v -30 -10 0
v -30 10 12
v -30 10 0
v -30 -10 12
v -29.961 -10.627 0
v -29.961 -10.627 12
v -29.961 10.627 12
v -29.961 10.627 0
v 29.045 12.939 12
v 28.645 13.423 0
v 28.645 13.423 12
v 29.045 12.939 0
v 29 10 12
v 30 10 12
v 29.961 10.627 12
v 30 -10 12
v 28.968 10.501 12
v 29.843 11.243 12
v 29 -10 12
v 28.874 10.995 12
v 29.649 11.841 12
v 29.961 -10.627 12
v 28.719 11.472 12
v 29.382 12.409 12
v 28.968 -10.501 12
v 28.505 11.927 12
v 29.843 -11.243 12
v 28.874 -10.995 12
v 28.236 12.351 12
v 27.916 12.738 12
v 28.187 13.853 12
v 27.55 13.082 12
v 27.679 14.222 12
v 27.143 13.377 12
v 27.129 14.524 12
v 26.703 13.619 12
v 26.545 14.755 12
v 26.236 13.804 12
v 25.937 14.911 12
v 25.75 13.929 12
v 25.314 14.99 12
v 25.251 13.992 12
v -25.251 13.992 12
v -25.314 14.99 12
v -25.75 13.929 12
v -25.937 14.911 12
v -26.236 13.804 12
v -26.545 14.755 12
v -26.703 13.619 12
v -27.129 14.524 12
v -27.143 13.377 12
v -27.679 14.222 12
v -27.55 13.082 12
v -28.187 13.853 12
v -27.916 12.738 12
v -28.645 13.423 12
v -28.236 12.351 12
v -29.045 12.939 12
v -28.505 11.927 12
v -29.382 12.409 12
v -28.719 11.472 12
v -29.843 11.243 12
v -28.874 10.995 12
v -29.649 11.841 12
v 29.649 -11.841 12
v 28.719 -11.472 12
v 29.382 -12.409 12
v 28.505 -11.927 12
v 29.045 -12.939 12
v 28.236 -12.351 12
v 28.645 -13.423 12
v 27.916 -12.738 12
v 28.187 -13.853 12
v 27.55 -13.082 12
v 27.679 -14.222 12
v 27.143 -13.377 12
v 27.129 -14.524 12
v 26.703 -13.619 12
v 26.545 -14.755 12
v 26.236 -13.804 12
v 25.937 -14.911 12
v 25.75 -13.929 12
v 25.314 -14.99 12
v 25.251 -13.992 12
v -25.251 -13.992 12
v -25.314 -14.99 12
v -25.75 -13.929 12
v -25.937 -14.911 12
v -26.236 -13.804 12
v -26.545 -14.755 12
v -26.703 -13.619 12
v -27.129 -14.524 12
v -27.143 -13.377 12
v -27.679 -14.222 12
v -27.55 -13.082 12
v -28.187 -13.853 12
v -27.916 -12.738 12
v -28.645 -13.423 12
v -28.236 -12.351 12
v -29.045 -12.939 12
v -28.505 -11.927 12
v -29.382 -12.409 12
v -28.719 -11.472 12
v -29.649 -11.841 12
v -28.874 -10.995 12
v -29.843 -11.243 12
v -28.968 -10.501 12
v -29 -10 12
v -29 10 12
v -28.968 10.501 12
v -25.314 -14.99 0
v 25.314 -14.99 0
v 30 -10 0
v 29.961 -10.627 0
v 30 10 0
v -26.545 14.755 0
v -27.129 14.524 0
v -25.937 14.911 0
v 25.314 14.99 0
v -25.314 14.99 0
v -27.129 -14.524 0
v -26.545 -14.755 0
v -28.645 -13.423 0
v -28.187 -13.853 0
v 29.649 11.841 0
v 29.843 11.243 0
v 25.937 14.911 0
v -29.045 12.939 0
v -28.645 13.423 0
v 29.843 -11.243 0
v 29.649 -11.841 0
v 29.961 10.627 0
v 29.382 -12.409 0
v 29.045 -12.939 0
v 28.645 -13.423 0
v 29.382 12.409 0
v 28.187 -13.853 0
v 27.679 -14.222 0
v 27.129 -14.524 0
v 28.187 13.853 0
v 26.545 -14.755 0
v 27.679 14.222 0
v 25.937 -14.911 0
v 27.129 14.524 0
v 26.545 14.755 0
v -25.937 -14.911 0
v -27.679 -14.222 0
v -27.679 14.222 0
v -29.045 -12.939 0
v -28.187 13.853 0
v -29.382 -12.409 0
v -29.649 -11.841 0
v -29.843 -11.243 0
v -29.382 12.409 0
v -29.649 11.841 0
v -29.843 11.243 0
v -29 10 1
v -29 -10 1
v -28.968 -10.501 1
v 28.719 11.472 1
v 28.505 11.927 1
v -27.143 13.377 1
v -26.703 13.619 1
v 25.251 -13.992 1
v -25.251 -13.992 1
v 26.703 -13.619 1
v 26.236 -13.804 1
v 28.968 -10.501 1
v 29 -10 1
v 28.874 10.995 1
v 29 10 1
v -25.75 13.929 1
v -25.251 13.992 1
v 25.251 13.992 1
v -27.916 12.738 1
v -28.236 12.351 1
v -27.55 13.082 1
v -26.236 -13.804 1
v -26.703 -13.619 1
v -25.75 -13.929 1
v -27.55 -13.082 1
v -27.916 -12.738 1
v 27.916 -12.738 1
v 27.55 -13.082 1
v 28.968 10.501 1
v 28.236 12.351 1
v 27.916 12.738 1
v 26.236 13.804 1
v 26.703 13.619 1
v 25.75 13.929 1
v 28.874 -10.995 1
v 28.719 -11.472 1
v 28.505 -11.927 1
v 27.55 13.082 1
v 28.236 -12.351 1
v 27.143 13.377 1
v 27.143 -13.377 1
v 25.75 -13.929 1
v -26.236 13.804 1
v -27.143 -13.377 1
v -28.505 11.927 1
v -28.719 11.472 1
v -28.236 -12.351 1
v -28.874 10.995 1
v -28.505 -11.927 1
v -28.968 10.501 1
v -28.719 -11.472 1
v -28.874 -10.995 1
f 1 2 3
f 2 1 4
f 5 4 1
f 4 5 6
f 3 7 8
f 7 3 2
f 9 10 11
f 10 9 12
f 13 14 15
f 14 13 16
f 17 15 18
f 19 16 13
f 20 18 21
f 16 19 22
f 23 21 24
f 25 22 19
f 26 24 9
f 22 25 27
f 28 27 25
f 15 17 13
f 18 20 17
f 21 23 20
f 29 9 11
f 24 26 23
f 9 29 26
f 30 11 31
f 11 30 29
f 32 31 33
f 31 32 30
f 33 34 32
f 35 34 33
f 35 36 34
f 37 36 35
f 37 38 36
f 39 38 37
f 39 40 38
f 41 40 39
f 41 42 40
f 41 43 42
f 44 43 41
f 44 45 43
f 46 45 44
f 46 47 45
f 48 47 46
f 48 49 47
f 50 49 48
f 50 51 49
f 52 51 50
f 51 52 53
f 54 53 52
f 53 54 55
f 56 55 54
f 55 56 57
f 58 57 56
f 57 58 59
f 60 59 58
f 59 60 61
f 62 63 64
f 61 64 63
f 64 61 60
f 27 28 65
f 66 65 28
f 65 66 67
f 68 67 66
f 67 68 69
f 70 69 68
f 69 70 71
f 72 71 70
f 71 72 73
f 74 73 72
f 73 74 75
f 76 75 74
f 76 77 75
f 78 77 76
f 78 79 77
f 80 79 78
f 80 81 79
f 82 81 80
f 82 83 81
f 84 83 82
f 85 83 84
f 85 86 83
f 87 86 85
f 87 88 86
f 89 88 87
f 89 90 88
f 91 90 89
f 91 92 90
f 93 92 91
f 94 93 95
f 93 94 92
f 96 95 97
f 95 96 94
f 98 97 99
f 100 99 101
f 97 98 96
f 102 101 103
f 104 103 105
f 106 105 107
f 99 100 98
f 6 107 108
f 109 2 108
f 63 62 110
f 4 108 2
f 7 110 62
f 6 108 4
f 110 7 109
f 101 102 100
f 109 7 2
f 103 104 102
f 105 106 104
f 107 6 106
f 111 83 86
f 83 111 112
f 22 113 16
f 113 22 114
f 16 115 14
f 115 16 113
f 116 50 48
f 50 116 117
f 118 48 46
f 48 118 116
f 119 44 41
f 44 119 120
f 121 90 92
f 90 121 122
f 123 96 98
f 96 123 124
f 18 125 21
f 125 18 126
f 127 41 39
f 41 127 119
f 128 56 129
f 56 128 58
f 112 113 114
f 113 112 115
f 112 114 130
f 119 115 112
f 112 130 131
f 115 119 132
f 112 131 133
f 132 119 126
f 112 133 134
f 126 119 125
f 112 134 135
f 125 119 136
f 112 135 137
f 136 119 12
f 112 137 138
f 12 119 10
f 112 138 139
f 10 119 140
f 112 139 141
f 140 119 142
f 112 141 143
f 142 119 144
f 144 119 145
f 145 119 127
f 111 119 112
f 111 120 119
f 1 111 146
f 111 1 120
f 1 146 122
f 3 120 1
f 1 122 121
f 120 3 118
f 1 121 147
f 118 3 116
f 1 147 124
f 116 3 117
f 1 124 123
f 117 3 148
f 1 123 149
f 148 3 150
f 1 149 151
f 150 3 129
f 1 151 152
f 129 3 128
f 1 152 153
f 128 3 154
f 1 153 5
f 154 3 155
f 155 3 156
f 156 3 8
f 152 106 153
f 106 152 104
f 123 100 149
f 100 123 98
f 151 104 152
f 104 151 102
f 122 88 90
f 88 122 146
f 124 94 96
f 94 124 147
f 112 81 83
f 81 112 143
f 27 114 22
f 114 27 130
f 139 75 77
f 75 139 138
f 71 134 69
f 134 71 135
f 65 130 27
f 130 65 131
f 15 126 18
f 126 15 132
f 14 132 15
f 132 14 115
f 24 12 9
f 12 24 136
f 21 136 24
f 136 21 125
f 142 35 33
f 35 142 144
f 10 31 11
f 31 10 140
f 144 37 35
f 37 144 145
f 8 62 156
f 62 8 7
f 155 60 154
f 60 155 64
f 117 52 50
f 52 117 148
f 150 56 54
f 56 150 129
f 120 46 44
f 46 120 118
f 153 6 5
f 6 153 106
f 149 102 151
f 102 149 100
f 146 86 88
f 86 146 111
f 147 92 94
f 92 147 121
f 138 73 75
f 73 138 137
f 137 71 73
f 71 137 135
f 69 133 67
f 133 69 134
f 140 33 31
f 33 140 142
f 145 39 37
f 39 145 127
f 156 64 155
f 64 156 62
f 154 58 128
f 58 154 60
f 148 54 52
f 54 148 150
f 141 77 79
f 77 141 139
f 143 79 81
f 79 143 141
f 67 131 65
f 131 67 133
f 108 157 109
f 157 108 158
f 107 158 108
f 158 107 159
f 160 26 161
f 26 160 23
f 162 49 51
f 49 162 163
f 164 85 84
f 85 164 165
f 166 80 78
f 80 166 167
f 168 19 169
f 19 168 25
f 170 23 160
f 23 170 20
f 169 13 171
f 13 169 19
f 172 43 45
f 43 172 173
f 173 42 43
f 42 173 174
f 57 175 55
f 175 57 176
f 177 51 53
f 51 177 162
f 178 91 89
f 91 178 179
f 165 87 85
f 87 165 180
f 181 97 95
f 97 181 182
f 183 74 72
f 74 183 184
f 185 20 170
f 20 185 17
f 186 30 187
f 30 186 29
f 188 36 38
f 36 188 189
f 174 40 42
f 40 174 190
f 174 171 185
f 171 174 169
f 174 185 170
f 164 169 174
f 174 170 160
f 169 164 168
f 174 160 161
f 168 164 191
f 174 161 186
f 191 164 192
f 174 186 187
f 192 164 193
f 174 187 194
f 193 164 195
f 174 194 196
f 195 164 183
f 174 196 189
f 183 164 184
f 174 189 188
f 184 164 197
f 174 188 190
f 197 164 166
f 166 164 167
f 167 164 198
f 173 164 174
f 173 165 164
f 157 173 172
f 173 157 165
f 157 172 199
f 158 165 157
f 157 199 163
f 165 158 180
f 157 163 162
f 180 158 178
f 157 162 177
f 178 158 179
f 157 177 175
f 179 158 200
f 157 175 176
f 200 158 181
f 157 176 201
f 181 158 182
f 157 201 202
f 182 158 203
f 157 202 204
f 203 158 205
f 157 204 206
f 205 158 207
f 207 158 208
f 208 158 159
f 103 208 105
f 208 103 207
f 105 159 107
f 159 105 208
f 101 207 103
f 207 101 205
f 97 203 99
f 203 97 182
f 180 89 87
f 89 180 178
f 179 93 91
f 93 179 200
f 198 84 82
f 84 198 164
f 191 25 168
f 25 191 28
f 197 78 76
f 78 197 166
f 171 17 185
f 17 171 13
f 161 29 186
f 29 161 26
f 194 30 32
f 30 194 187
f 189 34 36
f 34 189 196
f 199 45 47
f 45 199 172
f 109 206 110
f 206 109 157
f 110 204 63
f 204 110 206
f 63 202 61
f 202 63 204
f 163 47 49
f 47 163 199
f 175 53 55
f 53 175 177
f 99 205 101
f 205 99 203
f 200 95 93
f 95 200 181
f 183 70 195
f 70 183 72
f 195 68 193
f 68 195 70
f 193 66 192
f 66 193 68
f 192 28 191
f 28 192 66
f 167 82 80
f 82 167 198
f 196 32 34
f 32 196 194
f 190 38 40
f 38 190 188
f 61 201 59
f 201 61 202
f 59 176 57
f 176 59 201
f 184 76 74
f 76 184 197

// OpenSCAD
$fn = 50;


difference() {
	union() {
		hull() {
			translate(v = [-25.0000000000, 10.0000000000, 0]) {
				cylinder(h = 12, r = 5);
			}
			translate(v = [25.0000000000, 10.0000000000, 0]) {
				cylinder(h = 12, r = 5);
			}
			translate(v = [-25.0000000000, -10.0000000000, 0]) {
				cylinder(h = 12, r = 5);
			}
			translate(v = [25.0000000000, -10.0000000000, 0]) {
				cylinder(h = 12, r = 5);
			}
		}
	}
	union() {
		translate(v = [0, 0, 1]) {
			#hull() {
				translate(v = [-25.0000000000, 10.0000000000, 0]) {
					cylinder(h = 11, r = 4);
				}
				translate(v = [25.0000000000, 10.0000000000, 0]) {
					cylinder(h = 11, r = 4);
				}
				translate(v = [-25.0000000000, -10.0000000000, 0]) {
					cylinder(h = 11, r = 4);
				}
				translate(v = [25.0000000000, -10.0000000000, 0]) {
					cylinder(h = 11, r = 4);
				}
			}
		}
	}
}
